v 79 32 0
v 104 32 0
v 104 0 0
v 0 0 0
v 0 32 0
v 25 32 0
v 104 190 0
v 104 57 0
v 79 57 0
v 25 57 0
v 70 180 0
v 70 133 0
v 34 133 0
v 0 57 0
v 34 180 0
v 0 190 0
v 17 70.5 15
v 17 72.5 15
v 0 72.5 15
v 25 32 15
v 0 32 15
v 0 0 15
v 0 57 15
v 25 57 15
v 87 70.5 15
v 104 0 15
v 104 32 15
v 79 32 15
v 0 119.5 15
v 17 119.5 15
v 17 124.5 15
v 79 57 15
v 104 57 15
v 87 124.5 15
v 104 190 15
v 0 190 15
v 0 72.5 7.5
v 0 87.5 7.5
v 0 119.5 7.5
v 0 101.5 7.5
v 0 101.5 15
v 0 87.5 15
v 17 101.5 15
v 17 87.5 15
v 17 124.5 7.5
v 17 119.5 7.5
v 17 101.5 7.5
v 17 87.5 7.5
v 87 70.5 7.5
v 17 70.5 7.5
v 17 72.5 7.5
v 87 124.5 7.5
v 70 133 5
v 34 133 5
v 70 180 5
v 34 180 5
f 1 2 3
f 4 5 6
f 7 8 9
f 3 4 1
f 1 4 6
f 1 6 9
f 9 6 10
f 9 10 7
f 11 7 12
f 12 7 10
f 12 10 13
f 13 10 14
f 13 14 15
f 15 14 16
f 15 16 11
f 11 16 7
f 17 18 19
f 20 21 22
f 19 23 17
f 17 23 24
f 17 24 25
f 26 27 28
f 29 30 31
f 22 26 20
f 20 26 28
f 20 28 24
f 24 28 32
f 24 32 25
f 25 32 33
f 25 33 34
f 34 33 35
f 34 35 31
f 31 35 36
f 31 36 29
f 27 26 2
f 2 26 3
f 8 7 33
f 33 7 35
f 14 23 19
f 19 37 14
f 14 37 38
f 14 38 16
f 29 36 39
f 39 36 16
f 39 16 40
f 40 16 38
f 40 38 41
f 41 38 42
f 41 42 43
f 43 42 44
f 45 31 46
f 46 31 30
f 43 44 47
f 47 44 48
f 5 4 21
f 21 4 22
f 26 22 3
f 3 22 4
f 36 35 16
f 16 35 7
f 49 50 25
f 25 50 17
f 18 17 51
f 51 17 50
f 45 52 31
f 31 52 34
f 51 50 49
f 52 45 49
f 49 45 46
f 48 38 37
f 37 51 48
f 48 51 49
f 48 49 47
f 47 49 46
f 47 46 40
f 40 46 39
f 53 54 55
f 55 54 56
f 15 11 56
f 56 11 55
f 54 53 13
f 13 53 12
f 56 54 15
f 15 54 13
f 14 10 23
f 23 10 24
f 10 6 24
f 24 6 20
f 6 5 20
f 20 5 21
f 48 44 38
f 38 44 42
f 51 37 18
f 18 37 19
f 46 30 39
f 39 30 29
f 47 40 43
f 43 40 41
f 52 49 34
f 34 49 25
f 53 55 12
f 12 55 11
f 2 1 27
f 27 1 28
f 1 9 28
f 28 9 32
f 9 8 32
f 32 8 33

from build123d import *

# Parameters (mm, degrees)
SKETCH1_W           = 52
SKETCH1_H           = 190
BOSS_EXTRUDE1_DEPTH = 15
SKETCH2_W           = 35
SKETCH2_H           = 54
CUT_EXTRUDE1_DEPTH  = 7.5
SKETCH4_W           = 36
SKETCH4_H           = 47
CUT_EXTRUDE7_DEPTH  = 5
SKETCH9_W           = 25
SKETCH9_H           = 25
CUT_EXTRUDE8_DEPTH  = 198.557586541
SKETCH5_W           = 7.5
SKETCH5_H           = 18
SKETCH5_H_2         = 15
CUT_EXTRUDE5_DEPTH  = 20


with BuildPart() as part:
    # Sketch1 → Boss-Extrude1 (new body)
    with BuildSketch(Plane.XY):
        with Locations((26, 95)):
            Rectangle(SKETCH1_W, SKETCH1_H)
    boss_extrude1 = extrude(amount=BOSS_EXTRUDE1_DEPTH)

    # Sketch2 → Cut-Extrude1 (cut)
    with BuildSketch(Plane.XY.offset(15)):
        with Locations((34.5, 97.5)):
            Rectangle(SKETCH2_W, SKETCH2_H)
    cut_extrude1 = extrude(amount=-CUT_EXTRUDE1_DEPTH, mode=Mode.SUBTRACT)

    # Sketch4 → Cut-Extrude7 (cut)
    with BuildSketch(Plane(origin=(0, 0, 0), x_dir=(-1, 0, 0), z_dir=(0, 0, -1))):
        with Locations((-52, 156.5)):
            Rectangle(SKETCH4_W, SKETCH4_H)
    cut_extrude7 = extrude(amount=-CUT_EXTRUDE7_DEPTH, mode=Mode.SUBTRACT)

    # Sketch9 → Cut-Extrude8 (cut, through all)
    with BuildSketch(Plane.XY.offset(15)):
        with Locations((12.5, 44.5)):
            Rectangle(SKETCH9_W, SKETCH9_H)
    cut_extrude8 = extrude(amount=-CUT_EXTRUDE8_DEPTH, mode=Mode.SUBTRACT)

    # Sketch5 → Cut-Extrude5 (cut)
    with BuildSketch(Plane(origin=(17, 0, 0), x_dir=(0, 0, -1), z_dir=(1, 0, 0))):
        with Locations((-11.25, 110.5)):
            Rectangle(SKETCH5_W, SKETCH5_H)
        with Locations((-11.25, 80)):
            Rectangle(SKETCH5_W, SKETCH5_H_2)
    extrude(amount=-CUT_EXTRUDE5_DEPTH, mode=Mode.SUBTRACT)

    # Mirror4: Boss-Extrude1, Cut-Extrude1, Cut-Extrude7, Cut-Extrude8 across plane
    add(boss_extrude1.mirror(Plane(origin=(52, 0, 0), x_dir=(0, 0, 1), z_dir=(1, 0, 0))))
    add(cut_extrude1.mirror(Plane(origin=(52, 0, 0), x_dir=(0, 0, 1), z_dir=(1, 0, 0))), mode=Mode.SUBTRACT)
    add(cut_extrude7.mirror(Plane(origin=(52, 0, 0), x_dir=(0, 0, 1), z_dir=(1, 0, 0))), mode=Mode.SUBTRACT)
    add(cut_extrude8.mirror(Plane(origin=(52, 0, 0), x_dir=(0, 0, 1), z_dir=(1, 0, 0))), mode=Mode.SUBTRACT)


solid = part.part
